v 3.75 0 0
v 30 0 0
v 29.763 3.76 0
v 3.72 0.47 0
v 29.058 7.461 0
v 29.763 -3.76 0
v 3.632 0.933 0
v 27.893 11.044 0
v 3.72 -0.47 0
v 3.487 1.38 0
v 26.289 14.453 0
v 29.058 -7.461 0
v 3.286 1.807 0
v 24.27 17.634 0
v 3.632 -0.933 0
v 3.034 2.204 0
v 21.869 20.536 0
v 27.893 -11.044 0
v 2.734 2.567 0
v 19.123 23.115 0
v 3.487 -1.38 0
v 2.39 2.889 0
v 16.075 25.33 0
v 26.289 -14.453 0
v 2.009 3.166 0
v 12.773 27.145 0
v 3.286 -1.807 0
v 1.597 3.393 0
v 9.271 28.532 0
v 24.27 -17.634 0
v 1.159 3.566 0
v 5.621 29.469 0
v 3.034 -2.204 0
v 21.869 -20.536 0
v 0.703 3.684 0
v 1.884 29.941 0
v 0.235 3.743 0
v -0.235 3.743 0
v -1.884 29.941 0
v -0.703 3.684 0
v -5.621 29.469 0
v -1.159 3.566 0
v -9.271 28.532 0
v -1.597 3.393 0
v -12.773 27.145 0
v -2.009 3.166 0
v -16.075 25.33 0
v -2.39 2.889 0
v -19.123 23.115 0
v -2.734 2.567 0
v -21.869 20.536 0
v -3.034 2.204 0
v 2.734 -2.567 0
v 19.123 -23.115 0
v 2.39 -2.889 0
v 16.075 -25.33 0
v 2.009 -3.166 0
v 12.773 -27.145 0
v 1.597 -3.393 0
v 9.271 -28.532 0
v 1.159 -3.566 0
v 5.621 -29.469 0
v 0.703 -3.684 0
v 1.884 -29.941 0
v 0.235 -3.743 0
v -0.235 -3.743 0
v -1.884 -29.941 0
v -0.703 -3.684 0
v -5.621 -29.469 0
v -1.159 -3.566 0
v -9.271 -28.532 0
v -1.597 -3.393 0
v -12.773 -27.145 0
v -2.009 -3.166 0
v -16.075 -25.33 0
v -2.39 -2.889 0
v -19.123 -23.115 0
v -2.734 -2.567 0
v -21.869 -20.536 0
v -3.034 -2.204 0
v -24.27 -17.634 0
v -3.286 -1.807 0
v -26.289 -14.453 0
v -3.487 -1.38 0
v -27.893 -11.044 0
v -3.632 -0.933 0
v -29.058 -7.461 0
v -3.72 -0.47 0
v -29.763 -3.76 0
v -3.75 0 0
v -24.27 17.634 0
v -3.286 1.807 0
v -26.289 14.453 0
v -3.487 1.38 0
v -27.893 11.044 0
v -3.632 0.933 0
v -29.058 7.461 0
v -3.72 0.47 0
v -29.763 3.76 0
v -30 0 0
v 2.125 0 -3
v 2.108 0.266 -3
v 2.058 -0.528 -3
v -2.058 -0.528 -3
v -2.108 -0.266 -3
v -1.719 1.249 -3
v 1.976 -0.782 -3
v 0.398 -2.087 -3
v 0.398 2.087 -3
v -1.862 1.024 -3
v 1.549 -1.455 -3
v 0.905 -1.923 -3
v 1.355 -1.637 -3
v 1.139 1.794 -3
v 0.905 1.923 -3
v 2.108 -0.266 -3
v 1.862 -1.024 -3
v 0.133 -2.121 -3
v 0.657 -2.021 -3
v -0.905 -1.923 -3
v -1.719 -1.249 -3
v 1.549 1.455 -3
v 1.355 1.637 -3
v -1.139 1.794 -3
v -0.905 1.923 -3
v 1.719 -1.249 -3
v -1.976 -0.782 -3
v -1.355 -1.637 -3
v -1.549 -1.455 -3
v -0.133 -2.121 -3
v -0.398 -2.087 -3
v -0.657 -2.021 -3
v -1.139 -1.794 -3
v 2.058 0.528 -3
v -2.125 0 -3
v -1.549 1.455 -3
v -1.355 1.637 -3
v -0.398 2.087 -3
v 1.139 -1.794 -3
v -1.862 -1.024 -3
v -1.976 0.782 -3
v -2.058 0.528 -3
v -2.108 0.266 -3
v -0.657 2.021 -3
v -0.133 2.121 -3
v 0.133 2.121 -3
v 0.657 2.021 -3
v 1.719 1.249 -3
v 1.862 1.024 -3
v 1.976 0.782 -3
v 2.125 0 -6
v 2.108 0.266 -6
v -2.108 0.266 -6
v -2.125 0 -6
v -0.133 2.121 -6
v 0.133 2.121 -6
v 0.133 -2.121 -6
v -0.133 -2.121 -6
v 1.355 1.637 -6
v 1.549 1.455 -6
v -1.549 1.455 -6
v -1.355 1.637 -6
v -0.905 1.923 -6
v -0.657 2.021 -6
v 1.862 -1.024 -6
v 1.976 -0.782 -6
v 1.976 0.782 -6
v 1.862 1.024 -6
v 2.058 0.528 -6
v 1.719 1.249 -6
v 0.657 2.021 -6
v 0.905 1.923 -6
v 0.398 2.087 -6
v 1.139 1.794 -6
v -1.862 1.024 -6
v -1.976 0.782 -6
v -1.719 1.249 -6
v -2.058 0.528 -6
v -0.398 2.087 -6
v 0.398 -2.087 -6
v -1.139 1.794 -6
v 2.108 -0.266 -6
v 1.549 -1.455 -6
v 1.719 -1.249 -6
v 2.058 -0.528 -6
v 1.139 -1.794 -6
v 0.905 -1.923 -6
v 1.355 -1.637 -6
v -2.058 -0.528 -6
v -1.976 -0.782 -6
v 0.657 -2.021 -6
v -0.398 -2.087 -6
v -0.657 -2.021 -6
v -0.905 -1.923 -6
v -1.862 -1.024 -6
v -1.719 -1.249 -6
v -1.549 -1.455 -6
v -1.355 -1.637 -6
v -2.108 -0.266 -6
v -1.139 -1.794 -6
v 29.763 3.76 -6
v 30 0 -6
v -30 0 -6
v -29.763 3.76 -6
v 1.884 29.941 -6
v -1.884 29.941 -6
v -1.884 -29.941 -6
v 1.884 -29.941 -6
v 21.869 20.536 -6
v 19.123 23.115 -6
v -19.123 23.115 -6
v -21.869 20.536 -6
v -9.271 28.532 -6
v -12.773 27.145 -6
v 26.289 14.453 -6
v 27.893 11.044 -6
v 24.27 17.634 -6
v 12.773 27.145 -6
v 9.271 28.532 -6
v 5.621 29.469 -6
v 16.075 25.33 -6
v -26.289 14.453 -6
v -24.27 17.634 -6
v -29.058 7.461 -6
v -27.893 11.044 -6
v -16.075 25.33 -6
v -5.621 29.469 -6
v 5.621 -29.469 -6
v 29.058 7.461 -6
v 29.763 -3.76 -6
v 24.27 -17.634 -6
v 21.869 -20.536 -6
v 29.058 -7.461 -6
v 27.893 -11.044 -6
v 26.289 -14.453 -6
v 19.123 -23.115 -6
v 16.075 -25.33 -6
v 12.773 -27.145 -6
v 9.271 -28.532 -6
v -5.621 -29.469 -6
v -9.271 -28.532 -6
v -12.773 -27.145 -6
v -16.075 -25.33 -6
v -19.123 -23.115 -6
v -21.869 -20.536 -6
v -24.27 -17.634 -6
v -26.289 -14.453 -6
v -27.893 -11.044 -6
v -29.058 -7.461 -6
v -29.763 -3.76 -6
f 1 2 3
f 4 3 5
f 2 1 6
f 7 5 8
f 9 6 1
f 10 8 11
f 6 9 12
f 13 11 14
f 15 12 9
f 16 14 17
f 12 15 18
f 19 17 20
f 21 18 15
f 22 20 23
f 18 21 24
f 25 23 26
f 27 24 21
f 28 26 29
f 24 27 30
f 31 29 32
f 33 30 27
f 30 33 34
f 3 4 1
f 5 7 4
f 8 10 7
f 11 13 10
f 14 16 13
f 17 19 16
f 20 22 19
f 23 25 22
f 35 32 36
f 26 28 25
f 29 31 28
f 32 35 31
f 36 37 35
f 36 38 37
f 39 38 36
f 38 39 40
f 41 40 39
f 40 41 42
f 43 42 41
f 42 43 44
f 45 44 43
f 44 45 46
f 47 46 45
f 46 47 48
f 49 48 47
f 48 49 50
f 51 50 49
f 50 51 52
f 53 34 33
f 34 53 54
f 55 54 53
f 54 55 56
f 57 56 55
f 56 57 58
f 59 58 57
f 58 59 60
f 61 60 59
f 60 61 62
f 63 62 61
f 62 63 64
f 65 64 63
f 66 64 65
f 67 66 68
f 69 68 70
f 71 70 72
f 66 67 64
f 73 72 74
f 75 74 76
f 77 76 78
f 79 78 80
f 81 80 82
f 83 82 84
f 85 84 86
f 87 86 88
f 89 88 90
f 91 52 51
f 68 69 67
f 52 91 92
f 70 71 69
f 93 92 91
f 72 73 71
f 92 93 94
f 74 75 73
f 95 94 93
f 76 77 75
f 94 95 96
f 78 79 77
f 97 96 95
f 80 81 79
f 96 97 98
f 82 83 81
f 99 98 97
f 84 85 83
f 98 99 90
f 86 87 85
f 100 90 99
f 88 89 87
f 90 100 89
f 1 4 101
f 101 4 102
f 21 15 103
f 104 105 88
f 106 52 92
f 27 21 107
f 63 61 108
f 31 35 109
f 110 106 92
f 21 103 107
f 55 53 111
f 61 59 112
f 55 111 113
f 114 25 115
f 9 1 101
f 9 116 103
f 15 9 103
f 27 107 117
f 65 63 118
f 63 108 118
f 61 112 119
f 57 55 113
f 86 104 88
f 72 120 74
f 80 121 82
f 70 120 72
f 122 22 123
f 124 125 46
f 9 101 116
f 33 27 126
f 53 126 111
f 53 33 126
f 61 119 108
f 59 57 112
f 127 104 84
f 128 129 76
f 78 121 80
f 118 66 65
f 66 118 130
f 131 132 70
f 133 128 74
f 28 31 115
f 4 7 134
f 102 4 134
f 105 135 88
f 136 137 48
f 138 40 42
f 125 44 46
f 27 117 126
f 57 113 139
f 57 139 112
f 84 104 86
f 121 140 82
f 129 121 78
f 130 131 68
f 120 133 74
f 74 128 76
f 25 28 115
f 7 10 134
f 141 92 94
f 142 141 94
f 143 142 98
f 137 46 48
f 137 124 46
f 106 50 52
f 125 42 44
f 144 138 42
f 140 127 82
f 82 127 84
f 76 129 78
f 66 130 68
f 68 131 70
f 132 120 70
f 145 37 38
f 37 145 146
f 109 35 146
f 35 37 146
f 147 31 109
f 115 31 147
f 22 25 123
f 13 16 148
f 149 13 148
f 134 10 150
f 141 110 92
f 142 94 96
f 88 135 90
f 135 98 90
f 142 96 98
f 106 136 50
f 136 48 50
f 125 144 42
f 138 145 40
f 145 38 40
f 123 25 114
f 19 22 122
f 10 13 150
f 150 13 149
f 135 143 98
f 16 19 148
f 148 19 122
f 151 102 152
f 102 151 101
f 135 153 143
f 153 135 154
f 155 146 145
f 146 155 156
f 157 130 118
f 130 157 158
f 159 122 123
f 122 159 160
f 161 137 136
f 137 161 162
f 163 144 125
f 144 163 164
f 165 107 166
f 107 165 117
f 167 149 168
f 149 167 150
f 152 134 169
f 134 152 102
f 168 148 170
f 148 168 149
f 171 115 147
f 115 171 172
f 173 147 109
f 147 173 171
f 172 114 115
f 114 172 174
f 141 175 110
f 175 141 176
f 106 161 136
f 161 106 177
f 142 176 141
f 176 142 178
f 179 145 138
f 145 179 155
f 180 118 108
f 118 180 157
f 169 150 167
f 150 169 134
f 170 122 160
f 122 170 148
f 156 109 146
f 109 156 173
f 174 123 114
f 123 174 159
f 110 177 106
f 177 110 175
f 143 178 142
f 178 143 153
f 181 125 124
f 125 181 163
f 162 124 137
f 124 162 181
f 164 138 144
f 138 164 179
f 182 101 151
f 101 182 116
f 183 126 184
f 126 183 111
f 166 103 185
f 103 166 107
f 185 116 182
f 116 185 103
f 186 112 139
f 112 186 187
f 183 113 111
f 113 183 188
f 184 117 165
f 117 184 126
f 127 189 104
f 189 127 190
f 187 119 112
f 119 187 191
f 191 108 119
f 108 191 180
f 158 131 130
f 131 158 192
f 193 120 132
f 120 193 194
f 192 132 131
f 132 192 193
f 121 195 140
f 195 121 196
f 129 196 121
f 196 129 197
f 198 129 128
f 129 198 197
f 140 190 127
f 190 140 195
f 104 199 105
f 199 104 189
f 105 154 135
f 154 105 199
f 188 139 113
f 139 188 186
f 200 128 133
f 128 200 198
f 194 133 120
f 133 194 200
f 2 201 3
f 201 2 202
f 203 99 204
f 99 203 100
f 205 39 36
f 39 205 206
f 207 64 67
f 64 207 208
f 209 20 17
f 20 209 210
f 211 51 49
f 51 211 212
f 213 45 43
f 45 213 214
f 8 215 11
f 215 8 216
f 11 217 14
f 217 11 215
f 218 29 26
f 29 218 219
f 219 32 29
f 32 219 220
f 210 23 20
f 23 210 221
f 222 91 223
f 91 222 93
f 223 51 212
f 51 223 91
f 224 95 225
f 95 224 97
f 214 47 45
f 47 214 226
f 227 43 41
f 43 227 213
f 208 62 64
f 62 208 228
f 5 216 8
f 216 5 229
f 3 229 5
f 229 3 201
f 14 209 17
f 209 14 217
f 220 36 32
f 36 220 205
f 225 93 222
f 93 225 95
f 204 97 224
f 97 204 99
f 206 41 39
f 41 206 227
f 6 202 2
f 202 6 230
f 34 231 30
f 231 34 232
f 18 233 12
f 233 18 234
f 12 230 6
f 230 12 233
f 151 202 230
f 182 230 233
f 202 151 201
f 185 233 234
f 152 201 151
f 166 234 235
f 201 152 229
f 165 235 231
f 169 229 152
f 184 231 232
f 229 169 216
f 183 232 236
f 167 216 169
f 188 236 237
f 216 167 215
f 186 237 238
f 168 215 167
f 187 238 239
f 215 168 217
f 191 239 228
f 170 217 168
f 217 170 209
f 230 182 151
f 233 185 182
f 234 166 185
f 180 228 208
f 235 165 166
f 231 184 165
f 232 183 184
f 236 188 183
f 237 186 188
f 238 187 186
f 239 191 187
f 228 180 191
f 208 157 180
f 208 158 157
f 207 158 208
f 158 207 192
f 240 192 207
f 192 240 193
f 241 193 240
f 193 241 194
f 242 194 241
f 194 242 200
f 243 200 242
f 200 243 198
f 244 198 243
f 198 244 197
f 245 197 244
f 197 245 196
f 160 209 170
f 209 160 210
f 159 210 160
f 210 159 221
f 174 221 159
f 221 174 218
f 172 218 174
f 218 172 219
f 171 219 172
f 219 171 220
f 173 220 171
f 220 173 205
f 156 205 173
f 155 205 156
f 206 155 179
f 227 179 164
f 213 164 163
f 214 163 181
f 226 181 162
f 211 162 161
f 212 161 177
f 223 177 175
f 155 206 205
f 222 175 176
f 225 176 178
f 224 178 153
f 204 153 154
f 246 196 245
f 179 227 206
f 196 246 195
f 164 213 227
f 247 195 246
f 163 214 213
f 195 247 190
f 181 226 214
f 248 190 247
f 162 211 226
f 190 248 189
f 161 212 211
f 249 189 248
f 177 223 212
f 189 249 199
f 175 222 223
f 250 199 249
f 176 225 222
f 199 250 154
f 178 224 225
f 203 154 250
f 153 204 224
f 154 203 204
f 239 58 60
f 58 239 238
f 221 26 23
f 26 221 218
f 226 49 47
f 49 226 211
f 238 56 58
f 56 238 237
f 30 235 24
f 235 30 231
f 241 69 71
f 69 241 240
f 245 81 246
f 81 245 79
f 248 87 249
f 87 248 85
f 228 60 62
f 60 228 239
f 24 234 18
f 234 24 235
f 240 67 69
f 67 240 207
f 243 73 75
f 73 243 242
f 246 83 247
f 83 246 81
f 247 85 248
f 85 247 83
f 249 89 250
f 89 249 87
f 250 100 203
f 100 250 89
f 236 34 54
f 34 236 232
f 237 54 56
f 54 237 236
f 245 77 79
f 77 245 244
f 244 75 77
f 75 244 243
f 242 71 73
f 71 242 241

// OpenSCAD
$fn = 50;


difference() {
	union() {
		translate(v = [0, 0, -6.0000000000]) {
			cylinder(h = 6, r = 30.0000000000);
		}
	}
	union() {
		translate(v = [0, 0, 0]) {
			rotate(a = [0, 0, 0]) {
				difference() {
					union() {
						translate(v = [0, 0, -9.0000000000]) {
							cylinder(h = 9, r = 2.0000000000);
						}
						translate(v = [0, 0, -3]) {
							cylinder(h = 3, r1 = 2.1250000000, r2 = 3.7500000000);
						}
						translate(v = [0, 0, -9.0000000000]) {
							cylinder(h = 9, r = 2.1250000000);
						}
						translate(v = [0, 0, -9.0000000000]) {
							cylinder(h = 9, r = 2.0000000000);
						}
					}
					union();
				}
			}
		}
	}
}
